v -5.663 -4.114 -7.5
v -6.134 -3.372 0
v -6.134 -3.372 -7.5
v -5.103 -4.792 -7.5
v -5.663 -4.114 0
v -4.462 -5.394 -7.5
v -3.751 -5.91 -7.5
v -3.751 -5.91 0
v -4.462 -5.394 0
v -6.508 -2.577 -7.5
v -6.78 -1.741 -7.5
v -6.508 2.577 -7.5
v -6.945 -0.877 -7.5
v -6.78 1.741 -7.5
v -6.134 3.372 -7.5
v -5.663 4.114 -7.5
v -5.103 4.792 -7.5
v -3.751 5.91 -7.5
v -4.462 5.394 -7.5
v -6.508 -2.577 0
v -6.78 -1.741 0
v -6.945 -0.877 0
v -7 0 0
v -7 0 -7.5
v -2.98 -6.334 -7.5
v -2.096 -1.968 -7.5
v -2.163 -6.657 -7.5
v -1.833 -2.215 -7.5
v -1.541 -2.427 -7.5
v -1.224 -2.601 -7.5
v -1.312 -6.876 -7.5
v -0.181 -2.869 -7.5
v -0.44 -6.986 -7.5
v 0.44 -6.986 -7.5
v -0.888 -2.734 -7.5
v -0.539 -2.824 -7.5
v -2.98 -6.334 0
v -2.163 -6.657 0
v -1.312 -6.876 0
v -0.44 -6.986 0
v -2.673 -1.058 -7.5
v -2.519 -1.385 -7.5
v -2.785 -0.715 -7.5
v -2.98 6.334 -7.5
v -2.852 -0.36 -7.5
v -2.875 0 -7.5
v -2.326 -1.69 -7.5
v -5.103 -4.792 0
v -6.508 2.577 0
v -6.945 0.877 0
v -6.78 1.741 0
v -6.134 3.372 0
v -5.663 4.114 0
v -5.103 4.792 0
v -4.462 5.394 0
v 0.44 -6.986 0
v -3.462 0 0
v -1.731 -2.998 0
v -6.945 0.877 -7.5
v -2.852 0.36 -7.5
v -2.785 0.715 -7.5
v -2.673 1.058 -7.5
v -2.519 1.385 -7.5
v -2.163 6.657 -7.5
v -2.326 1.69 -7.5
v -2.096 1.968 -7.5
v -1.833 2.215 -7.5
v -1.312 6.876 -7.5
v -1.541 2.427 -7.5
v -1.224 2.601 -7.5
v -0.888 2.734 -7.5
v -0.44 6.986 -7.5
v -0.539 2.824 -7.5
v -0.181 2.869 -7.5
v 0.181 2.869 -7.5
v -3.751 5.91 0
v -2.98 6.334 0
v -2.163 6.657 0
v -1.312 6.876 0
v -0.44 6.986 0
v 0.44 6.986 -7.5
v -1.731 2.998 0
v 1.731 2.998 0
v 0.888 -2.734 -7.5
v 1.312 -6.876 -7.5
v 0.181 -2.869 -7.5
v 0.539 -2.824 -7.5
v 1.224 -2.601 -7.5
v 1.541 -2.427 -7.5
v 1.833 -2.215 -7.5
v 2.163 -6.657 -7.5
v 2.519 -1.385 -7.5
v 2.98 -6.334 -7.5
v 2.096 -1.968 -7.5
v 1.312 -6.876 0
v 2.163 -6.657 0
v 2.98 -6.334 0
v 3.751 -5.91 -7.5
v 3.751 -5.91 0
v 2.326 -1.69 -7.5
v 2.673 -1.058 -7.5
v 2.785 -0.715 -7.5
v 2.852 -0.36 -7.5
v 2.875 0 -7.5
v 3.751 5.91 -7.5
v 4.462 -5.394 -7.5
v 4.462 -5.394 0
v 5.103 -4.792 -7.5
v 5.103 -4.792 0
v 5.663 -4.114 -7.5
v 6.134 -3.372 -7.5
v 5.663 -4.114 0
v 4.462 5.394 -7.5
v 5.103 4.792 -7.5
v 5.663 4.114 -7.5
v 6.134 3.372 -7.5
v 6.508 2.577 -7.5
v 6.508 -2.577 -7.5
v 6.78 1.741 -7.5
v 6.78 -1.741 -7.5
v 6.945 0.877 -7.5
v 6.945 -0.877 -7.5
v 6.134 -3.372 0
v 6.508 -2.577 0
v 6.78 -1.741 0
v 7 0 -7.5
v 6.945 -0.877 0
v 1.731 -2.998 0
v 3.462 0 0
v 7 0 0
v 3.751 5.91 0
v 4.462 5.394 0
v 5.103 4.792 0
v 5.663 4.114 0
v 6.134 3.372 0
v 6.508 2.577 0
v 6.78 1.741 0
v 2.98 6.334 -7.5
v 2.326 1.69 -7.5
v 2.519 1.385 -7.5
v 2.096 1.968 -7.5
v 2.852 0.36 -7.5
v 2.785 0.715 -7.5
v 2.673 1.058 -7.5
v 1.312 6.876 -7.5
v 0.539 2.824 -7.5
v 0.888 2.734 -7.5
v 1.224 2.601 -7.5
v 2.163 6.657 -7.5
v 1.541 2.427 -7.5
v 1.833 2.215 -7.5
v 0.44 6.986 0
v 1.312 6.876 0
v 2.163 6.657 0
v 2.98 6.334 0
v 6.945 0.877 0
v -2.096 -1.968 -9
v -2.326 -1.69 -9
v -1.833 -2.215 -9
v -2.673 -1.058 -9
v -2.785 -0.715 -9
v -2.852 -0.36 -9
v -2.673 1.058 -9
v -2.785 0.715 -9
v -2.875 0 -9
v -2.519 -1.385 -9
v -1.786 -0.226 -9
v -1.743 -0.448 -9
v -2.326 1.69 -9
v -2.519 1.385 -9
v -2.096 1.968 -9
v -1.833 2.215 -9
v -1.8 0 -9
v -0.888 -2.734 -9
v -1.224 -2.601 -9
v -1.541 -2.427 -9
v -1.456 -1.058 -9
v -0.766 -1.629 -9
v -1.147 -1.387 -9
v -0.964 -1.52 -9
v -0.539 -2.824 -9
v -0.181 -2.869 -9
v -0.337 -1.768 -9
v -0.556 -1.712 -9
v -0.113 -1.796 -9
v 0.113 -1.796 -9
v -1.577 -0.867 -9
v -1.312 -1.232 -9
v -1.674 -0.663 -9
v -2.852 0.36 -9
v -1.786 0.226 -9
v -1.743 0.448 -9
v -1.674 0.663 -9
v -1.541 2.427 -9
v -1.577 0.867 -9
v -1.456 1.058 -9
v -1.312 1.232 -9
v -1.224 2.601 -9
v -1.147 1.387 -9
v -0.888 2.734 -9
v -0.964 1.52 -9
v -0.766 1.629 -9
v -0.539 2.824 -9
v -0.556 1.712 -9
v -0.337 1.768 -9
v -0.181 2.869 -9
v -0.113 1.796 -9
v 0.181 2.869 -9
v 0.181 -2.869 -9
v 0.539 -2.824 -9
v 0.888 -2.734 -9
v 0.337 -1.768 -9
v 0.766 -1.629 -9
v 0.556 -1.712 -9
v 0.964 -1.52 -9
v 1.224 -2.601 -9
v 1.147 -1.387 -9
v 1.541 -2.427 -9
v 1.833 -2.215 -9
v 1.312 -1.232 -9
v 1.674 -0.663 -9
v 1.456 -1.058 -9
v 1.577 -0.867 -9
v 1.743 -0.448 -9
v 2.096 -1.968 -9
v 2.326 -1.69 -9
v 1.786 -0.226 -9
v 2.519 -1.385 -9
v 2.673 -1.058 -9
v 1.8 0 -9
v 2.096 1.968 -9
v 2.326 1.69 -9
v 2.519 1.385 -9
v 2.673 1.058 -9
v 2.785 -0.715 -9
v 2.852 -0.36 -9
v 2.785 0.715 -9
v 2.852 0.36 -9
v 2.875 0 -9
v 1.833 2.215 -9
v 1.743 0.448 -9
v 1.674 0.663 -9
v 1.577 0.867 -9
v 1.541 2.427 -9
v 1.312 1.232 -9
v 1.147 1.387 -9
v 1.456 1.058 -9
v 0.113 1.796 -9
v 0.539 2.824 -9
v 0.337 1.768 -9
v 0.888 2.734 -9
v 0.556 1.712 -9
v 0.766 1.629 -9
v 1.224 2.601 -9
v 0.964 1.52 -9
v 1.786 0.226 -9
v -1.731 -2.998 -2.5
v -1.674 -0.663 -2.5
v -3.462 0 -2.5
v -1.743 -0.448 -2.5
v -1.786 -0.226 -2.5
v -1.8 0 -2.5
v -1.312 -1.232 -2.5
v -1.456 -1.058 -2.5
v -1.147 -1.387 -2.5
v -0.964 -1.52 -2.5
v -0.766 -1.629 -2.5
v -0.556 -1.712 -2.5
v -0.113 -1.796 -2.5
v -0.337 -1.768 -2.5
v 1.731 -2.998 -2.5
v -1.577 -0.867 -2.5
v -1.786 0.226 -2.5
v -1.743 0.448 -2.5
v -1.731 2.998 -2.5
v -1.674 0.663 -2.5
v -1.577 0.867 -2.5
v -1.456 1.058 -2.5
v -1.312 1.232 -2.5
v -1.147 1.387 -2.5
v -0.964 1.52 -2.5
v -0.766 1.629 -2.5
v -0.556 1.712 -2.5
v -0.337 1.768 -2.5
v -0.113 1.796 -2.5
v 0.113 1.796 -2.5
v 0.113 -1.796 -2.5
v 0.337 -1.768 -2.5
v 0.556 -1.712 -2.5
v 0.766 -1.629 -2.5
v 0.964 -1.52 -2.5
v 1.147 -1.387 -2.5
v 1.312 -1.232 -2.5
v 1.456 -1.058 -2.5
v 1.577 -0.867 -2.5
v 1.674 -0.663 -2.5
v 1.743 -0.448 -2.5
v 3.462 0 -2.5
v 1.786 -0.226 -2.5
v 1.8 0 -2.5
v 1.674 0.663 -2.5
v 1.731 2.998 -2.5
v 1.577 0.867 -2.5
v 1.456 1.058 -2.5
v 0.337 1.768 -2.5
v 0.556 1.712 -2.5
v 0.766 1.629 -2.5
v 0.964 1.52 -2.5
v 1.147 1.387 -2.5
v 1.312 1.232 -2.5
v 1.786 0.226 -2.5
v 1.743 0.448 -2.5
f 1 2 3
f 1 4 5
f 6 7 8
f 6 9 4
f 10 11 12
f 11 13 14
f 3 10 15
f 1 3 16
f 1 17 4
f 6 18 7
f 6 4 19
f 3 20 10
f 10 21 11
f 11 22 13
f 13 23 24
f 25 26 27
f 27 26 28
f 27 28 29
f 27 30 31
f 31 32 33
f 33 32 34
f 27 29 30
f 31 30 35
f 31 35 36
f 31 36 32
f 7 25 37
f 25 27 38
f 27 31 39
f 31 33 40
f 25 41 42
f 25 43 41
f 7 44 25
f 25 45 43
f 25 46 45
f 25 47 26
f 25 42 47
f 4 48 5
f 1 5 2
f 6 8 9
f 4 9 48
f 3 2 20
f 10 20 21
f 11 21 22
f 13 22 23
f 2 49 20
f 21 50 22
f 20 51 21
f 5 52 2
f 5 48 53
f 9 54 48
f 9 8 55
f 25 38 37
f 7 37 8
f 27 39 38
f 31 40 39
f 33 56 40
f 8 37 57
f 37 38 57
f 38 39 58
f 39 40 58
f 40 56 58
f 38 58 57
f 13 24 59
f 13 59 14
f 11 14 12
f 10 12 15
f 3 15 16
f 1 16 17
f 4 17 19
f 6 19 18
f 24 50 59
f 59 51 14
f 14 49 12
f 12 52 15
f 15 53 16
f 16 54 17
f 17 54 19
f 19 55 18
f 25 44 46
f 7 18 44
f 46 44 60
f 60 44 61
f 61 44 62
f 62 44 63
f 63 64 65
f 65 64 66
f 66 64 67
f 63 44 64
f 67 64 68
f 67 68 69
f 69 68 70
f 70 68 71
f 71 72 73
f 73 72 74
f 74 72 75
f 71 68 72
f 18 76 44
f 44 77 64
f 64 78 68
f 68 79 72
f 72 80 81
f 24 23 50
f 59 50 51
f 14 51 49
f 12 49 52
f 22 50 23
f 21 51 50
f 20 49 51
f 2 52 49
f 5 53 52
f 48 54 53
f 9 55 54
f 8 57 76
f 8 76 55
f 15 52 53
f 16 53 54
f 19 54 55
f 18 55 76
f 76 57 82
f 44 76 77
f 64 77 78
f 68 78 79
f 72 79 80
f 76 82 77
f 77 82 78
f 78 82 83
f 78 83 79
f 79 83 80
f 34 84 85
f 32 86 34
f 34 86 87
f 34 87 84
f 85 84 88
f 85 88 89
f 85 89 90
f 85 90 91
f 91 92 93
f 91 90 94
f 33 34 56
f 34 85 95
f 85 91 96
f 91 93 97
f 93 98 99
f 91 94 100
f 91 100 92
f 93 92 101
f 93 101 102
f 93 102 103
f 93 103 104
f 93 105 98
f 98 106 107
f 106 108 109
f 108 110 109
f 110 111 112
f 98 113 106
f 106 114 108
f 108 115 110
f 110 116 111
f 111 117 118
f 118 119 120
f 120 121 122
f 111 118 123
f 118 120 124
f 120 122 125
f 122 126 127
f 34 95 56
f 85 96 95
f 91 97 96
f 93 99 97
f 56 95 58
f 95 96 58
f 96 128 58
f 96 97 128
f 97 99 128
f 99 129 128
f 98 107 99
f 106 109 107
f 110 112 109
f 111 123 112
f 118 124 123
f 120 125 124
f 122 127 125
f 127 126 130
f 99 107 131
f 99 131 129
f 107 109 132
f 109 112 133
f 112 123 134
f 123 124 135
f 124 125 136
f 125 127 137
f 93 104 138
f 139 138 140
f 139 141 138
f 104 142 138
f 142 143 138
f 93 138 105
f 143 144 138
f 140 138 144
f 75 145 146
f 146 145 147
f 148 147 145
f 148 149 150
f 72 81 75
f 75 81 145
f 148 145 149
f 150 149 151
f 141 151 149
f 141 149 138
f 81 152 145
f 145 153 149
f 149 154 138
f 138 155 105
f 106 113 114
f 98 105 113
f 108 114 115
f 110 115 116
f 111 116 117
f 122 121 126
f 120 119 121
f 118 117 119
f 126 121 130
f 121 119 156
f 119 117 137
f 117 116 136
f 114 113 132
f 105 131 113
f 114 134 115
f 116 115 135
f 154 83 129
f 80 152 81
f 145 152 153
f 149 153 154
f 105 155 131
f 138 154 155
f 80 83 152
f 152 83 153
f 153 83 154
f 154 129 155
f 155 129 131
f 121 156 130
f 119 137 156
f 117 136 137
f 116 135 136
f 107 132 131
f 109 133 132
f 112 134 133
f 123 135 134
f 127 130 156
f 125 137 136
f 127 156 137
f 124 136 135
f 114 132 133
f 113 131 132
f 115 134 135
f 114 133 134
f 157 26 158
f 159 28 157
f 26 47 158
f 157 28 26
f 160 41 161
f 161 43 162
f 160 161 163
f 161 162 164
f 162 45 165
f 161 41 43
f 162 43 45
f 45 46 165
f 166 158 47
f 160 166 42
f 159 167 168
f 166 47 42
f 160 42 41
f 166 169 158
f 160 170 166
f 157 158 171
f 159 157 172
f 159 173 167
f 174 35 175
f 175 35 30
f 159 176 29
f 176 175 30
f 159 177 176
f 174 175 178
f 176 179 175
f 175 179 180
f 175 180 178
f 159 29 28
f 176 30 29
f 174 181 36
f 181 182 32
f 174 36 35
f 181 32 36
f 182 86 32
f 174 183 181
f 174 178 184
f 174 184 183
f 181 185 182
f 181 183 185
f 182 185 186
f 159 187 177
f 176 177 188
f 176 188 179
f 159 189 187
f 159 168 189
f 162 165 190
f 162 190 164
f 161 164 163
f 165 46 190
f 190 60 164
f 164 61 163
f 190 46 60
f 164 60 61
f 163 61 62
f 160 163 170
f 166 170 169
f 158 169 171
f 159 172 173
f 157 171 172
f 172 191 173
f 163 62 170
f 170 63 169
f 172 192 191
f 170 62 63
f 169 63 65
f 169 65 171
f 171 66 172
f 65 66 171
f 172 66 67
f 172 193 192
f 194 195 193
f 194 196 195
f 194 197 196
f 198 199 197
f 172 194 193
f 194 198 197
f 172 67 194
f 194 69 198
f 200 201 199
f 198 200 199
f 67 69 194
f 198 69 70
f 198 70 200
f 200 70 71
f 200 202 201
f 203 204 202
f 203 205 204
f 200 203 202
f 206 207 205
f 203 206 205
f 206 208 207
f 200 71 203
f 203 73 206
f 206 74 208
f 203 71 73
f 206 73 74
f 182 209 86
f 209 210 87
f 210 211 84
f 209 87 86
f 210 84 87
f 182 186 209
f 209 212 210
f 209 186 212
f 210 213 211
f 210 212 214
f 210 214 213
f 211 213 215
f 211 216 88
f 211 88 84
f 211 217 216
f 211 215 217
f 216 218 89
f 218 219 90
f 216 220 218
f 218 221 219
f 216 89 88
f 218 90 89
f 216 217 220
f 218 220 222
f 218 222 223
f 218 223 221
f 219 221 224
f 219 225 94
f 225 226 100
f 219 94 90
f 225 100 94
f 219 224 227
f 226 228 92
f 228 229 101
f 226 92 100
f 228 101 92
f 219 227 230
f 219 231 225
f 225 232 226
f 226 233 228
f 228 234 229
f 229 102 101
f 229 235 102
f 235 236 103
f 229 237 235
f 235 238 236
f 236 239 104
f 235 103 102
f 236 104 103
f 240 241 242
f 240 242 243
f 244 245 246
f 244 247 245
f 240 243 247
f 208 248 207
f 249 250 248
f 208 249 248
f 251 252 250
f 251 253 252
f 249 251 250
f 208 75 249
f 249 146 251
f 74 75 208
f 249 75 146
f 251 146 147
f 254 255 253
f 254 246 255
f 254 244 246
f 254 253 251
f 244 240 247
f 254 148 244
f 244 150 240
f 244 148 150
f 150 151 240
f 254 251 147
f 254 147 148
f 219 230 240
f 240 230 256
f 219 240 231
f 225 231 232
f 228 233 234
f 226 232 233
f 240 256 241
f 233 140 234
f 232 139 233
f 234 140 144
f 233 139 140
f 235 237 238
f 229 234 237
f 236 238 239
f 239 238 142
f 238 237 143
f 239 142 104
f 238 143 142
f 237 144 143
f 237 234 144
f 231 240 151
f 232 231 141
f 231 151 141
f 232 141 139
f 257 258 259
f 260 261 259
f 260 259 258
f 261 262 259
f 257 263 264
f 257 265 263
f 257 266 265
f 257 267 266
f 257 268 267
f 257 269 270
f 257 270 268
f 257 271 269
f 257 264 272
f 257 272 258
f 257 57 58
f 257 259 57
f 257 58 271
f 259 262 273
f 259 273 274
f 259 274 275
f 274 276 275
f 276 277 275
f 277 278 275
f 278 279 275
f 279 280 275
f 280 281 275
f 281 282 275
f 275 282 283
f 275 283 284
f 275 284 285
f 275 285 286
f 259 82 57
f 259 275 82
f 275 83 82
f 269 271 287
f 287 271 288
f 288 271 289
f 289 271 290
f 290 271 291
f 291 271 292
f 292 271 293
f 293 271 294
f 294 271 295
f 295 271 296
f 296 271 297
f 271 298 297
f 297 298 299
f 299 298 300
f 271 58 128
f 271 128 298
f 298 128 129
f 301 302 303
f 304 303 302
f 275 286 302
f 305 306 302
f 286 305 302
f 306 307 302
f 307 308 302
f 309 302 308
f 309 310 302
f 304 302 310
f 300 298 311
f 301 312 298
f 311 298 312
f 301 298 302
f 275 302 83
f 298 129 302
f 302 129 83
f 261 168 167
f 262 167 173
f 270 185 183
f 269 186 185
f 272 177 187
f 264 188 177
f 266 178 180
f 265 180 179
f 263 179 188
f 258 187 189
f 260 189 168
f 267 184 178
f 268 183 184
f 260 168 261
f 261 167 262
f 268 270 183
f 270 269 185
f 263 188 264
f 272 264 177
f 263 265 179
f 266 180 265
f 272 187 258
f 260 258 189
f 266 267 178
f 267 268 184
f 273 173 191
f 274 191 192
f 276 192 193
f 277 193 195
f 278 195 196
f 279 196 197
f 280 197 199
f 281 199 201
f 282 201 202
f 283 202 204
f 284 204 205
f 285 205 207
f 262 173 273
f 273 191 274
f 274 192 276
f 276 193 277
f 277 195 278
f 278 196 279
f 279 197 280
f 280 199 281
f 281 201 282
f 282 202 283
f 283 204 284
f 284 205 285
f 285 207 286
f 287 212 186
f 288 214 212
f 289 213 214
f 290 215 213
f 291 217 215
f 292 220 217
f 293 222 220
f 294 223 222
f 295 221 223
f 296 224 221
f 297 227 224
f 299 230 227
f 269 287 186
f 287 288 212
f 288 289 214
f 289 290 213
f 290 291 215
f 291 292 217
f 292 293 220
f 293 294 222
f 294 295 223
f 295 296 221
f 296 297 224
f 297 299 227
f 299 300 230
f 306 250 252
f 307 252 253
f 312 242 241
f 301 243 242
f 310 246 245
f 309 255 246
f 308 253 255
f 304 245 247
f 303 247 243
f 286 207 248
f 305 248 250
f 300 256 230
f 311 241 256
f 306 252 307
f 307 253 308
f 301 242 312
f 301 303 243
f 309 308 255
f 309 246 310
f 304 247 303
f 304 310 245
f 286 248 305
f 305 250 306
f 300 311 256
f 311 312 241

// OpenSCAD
$fn = 50;

difference() {
	union() {
		translate(v = [0, 0, -7.5]) {
			cylinder(h = 7.5, r = 7.0);
		}
		#translate(v = [0, 0, -9.0]) {
			cylinder(h = 9, r = 2.875);
		}
	}
	union() {
		translate(v = [0, 0, 0]) {
			rotate(a = [0, 0, 0]) {
				difference() {
					union() {
						translate(v = [0, 0, -2.5]) {
							linear_extrude(height = 2.5) {
								polygon(points = [[3.4619999999999997, 0.0], [1.7310000000000003, 2.9981799479017264], [-1.7309999999999992, 2.9981799479017264], [-3.4619999999999997, 4.2397272186481365e-16], [-1.7310000000000014, -2.998179947901726], [1.7309999999999977, -2.9981799479017277]]);
							}
						}
					}
					union();
				}
			}
		}
		#translate(v = [0, 0, -100.0]) {
			cylinder(h = 200, r = 1.8);
		}
	}
}
